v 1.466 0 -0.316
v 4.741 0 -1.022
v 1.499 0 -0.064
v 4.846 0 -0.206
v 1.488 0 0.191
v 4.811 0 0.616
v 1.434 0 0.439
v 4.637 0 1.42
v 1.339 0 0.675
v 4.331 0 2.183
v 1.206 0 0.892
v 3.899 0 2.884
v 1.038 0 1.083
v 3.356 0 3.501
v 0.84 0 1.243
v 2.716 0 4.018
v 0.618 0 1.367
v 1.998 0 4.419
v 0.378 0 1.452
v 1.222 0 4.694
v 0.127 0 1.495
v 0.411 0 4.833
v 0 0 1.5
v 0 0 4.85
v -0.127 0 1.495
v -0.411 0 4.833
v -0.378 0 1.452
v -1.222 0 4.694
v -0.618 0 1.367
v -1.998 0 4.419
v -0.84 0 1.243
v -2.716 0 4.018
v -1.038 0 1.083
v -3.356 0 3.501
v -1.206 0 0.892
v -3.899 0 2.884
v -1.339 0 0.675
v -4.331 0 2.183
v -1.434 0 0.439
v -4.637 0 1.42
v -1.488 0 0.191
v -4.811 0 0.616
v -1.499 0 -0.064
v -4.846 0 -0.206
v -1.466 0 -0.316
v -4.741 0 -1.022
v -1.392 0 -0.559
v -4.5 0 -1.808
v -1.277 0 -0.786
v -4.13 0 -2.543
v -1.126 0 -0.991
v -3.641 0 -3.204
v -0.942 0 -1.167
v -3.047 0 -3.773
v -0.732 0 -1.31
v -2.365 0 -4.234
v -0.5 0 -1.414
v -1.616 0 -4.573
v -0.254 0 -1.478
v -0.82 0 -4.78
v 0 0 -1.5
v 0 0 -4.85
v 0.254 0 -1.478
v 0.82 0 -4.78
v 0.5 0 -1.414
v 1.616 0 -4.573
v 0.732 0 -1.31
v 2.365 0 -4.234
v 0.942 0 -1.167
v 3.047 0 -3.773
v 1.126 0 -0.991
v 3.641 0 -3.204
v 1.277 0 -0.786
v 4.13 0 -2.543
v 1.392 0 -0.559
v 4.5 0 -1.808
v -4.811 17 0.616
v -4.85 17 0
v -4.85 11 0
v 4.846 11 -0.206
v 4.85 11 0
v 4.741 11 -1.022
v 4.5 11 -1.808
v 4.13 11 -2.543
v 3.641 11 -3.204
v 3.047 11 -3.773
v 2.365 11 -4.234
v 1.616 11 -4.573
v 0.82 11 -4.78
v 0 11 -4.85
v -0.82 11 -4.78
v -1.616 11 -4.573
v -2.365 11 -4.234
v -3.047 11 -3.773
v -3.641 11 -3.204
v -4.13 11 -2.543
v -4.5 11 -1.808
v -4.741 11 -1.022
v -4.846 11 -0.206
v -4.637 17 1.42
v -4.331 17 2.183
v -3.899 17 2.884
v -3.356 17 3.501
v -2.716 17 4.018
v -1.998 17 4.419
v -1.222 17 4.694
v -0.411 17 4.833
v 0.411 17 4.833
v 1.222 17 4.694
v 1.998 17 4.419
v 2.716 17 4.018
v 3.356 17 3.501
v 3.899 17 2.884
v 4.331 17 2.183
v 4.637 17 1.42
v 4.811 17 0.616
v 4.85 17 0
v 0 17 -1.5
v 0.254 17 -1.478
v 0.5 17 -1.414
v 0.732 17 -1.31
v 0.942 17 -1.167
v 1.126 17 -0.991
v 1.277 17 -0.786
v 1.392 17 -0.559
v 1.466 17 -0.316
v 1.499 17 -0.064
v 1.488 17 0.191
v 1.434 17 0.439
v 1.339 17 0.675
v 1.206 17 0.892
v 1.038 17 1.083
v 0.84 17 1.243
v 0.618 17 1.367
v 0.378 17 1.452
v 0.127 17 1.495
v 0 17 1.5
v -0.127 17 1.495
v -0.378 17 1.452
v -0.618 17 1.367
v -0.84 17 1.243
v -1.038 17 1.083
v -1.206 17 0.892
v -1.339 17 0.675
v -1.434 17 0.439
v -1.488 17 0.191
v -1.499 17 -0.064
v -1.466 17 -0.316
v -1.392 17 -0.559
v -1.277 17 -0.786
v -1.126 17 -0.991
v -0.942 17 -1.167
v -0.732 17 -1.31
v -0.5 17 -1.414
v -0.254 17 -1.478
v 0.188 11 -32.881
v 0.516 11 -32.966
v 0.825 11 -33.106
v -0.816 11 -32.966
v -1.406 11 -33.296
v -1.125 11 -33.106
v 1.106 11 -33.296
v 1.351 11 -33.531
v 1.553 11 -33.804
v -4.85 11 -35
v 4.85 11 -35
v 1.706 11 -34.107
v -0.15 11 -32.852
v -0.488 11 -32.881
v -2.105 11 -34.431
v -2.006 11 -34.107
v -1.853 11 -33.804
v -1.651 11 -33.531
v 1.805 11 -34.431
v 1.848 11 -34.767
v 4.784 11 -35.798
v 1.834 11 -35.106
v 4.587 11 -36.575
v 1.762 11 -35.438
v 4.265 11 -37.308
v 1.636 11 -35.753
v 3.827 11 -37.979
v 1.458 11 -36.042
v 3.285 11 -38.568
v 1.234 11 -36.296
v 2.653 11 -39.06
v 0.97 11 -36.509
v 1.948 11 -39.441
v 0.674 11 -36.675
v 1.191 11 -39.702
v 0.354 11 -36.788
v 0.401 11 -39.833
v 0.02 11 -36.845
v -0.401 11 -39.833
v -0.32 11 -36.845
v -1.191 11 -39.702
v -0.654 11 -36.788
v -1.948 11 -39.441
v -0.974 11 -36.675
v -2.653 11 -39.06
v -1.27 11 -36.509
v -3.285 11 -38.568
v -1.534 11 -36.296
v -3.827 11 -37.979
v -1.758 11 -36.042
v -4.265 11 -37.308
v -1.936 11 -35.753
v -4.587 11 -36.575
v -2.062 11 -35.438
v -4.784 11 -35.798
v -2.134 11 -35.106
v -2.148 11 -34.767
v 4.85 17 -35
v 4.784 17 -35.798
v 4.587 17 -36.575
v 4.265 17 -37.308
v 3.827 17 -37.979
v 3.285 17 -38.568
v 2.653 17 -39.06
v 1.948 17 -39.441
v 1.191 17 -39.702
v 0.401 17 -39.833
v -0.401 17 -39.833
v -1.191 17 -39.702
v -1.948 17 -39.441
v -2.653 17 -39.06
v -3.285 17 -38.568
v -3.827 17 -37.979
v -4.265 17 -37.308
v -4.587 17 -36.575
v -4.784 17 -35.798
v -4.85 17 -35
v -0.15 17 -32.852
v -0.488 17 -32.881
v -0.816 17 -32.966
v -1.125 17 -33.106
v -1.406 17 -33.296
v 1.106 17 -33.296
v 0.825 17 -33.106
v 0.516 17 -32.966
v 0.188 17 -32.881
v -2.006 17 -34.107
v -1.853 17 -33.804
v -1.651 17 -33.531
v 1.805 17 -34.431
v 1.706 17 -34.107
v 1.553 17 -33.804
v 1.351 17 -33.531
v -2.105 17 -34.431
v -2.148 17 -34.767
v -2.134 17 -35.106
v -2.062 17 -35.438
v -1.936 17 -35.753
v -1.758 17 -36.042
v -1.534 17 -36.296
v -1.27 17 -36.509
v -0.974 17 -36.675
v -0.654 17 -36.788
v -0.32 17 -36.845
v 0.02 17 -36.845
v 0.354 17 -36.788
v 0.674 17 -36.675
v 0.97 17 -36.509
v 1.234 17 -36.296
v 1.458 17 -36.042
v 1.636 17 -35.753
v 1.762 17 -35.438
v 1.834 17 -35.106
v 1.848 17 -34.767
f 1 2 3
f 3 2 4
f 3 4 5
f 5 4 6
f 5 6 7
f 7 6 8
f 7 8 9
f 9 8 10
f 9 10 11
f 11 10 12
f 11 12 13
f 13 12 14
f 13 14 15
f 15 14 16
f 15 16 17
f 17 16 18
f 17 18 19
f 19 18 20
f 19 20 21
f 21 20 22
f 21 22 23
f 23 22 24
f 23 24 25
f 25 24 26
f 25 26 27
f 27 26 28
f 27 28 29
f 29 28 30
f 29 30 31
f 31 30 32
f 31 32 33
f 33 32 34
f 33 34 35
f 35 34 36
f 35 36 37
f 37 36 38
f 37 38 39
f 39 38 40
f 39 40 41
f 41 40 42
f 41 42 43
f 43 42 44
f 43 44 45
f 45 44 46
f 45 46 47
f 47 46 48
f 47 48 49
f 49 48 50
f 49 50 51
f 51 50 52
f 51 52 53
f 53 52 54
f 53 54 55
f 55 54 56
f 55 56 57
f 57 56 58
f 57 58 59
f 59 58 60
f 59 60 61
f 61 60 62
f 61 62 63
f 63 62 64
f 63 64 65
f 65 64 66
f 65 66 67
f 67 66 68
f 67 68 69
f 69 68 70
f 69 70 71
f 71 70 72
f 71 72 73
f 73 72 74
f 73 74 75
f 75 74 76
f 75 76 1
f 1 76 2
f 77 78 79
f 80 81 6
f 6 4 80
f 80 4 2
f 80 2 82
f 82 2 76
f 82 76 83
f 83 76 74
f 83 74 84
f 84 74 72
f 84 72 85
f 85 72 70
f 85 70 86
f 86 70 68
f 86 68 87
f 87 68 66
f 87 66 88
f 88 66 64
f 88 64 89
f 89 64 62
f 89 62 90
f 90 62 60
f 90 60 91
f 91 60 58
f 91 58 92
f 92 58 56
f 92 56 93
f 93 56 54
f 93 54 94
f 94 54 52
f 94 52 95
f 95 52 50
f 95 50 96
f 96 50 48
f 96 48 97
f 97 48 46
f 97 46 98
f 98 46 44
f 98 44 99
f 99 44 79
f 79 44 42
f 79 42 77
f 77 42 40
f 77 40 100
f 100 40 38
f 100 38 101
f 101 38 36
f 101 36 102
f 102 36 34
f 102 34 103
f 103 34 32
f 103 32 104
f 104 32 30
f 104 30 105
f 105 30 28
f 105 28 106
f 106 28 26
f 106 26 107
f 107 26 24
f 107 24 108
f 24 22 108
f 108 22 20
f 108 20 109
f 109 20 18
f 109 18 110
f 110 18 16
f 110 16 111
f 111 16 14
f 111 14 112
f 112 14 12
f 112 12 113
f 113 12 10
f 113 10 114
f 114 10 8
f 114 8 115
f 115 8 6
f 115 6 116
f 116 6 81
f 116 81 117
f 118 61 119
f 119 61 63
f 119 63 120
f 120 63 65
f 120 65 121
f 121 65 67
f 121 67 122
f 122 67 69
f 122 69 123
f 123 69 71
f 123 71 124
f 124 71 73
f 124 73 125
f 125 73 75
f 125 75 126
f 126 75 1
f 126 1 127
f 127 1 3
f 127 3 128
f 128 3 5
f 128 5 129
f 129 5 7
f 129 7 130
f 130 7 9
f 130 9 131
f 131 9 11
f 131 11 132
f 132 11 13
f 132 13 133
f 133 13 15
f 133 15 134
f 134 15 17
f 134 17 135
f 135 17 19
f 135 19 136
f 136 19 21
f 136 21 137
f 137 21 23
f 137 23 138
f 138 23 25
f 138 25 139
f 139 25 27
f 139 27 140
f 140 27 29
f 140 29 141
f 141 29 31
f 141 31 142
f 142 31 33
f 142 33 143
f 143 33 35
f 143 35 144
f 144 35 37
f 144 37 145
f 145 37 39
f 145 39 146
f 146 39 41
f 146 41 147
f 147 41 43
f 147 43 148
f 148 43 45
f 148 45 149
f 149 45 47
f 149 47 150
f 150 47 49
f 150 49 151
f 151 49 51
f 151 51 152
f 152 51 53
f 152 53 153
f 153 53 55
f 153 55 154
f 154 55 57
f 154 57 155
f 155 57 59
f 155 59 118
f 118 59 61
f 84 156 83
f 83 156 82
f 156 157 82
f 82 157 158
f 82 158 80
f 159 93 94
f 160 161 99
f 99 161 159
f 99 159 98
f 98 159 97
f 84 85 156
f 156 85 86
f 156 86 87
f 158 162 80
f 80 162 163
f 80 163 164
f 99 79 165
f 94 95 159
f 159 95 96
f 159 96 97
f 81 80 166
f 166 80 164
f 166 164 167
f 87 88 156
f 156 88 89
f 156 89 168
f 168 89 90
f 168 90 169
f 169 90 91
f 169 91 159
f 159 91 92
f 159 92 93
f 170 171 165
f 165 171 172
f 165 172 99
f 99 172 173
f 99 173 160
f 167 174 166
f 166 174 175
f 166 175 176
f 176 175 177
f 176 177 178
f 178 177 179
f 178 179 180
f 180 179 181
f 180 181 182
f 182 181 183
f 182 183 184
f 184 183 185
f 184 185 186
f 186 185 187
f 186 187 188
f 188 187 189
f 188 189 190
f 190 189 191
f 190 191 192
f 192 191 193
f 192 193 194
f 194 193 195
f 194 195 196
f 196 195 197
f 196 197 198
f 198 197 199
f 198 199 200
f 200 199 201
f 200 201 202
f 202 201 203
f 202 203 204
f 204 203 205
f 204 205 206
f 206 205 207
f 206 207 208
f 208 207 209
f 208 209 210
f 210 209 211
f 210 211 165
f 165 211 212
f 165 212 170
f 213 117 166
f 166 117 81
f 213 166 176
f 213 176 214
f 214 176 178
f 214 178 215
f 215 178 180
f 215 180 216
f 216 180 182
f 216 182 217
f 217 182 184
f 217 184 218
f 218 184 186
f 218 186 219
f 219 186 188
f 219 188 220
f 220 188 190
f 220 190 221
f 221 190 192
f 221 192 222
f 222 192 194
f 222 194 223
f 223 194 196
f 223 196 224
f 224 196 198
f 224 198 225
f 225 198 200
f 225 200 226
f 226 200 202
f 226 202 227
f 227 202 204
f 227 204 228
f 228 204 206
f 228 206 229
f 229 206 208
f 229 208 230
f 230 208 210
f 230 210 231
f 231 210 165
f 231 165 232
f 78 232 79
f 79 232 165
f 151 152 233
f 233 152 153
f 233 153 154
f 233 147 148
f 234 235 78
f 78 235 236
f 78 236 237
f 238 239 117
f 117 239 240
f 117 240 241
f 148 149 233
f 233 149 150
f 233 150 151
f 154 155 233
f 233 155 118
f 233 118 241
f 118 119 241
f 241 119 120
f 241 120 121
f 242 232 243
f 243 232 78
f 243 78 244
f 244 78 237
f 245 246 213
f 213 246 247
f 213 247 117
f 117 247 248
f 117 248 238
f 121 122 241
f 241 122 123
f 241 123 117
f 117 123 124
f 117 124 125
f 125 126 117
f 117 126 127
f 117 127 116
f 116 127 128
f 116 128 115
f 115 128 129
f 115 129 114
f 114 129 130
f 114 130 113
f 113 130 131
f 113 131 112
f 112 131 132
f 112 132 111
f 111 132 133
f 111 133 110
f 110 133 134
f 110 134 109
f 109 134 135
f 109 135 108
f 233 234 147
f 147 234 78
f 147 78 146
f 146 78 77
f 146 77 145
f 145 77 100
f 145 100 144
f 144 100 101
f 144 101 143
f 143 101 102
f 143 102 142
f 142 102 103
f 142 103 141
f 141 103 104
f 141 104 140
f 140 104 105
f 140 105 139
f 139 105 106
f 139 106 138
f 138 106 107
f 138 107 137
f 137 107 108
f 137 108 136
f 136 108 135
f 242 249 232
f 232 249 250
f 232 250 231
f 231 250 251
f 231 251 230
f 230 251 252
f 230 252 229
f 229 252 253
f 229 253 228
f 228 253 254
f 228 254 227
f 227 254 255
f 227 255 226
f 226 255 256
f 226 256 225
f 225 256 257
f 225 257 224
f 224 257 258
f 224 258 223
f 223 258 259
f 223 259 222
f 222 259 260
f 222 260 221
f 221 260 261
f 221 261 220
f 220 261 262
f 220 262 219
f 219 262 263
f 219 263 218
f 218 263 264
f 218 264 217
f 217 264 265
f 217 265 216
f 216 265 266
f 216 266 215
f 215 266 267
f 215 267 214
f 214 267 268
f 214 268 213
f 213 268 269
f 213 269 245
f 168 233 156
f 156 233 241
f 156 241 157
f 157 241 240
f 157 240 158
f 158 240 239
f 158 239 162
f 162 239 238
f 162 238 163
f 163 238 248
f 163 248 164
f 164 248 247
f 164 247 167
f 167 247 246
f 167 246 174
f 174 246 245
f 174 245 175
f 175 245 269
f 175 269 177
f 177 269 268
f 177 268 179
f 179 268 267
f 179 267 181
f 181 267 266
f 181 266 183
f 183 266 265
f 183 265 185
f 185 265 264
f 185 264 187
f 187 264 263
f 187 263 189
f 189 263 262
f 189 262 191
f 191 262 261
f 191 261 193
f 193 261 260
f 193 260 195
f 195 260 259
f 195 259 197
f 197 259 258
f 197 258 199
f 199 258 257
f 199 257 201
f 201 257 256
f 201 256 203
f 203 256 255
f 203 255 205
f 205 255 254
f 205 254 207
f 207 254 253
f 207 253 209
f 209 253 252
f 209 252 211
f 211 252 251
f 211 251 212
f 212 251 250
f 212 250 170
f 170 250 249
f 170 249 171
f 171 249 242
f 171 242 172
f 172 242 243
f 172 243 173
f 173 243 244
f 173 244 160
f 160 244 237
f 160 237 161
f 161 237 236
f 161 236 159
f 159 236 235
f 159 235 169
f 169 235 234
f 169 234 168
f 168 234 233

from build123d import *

# Parameters (mm, degrees)
SKETCH1_R           = 4.85
SKETCH1_R_2         = 1.5
BOSS_EXTRUDE1_DEPTH = 11
BOSS_EXTRUDE2_DEPTH = 6
SKETCH3_R           = 2
CUT_EXTRUDE1_DEPTH  = 7
SKETCH6_R           = 1.5
CUT_EXTRUDE2_DEPTH  = 10


with BuildPart() as part:
    # Sketch1 → Boss-Extrude1 (new body)
    with BuildSketch(Plane(origin=(0, 0, 0), x_dir=(1, 0, 0), z_dir=(0, 1, 0))):
        Circle(SKETCH1_R)
        Circle(SKETCH1_R_2, mode=Mode.SUBTRACT)
    extrude(amount=BOSS_EXTRUDE1_DEPTH)

    # Sketch2 → Boss-Extrude2 (add)
    with BuildSketch(Plane(origin=(0, 11, 0), x_dir=(1, 0, 0), z_dir=(0, 1, 0))):
        with BuildLine():
            Line((-4.85, 0), (-4.85, 35))
            ThreePointArc((-4.85, 35), (0, 39.85), (4.85, 35))
            Line((4.85, 35), (4.85, 0))
            ThreePointArc((4.85, 0), (0, -4.85), (-4.85, 0))
        make_face()
    extrude(amount=BOSS_EXTRUDE2_DEPTH)

    # Sketch3 → Cut-Extrude1 (cut)
    with BuildSketch(Plane(origin=(0, 17, 0), x_dir=(1, 0, 0), z_dir=(0, 1, 0))):
        with Locations((-0.15, 34.852250506)):
            Circle(SKETCH3_R)
    extrude(amount=-CUT_EXTRUDE1_DEPTH, mode=Mode.SUBTRACT)

    # Sketch6 → Cut-Extrude2 (cut)
    with BuildSketch(Plane.XZ.offset(-11)):
        Circle(SKETCH6_R)
    extrude(amount=-CUT_EXTRUDE2_DEPTH, mode=Mode.SUBTRACT)


solid = part.part
